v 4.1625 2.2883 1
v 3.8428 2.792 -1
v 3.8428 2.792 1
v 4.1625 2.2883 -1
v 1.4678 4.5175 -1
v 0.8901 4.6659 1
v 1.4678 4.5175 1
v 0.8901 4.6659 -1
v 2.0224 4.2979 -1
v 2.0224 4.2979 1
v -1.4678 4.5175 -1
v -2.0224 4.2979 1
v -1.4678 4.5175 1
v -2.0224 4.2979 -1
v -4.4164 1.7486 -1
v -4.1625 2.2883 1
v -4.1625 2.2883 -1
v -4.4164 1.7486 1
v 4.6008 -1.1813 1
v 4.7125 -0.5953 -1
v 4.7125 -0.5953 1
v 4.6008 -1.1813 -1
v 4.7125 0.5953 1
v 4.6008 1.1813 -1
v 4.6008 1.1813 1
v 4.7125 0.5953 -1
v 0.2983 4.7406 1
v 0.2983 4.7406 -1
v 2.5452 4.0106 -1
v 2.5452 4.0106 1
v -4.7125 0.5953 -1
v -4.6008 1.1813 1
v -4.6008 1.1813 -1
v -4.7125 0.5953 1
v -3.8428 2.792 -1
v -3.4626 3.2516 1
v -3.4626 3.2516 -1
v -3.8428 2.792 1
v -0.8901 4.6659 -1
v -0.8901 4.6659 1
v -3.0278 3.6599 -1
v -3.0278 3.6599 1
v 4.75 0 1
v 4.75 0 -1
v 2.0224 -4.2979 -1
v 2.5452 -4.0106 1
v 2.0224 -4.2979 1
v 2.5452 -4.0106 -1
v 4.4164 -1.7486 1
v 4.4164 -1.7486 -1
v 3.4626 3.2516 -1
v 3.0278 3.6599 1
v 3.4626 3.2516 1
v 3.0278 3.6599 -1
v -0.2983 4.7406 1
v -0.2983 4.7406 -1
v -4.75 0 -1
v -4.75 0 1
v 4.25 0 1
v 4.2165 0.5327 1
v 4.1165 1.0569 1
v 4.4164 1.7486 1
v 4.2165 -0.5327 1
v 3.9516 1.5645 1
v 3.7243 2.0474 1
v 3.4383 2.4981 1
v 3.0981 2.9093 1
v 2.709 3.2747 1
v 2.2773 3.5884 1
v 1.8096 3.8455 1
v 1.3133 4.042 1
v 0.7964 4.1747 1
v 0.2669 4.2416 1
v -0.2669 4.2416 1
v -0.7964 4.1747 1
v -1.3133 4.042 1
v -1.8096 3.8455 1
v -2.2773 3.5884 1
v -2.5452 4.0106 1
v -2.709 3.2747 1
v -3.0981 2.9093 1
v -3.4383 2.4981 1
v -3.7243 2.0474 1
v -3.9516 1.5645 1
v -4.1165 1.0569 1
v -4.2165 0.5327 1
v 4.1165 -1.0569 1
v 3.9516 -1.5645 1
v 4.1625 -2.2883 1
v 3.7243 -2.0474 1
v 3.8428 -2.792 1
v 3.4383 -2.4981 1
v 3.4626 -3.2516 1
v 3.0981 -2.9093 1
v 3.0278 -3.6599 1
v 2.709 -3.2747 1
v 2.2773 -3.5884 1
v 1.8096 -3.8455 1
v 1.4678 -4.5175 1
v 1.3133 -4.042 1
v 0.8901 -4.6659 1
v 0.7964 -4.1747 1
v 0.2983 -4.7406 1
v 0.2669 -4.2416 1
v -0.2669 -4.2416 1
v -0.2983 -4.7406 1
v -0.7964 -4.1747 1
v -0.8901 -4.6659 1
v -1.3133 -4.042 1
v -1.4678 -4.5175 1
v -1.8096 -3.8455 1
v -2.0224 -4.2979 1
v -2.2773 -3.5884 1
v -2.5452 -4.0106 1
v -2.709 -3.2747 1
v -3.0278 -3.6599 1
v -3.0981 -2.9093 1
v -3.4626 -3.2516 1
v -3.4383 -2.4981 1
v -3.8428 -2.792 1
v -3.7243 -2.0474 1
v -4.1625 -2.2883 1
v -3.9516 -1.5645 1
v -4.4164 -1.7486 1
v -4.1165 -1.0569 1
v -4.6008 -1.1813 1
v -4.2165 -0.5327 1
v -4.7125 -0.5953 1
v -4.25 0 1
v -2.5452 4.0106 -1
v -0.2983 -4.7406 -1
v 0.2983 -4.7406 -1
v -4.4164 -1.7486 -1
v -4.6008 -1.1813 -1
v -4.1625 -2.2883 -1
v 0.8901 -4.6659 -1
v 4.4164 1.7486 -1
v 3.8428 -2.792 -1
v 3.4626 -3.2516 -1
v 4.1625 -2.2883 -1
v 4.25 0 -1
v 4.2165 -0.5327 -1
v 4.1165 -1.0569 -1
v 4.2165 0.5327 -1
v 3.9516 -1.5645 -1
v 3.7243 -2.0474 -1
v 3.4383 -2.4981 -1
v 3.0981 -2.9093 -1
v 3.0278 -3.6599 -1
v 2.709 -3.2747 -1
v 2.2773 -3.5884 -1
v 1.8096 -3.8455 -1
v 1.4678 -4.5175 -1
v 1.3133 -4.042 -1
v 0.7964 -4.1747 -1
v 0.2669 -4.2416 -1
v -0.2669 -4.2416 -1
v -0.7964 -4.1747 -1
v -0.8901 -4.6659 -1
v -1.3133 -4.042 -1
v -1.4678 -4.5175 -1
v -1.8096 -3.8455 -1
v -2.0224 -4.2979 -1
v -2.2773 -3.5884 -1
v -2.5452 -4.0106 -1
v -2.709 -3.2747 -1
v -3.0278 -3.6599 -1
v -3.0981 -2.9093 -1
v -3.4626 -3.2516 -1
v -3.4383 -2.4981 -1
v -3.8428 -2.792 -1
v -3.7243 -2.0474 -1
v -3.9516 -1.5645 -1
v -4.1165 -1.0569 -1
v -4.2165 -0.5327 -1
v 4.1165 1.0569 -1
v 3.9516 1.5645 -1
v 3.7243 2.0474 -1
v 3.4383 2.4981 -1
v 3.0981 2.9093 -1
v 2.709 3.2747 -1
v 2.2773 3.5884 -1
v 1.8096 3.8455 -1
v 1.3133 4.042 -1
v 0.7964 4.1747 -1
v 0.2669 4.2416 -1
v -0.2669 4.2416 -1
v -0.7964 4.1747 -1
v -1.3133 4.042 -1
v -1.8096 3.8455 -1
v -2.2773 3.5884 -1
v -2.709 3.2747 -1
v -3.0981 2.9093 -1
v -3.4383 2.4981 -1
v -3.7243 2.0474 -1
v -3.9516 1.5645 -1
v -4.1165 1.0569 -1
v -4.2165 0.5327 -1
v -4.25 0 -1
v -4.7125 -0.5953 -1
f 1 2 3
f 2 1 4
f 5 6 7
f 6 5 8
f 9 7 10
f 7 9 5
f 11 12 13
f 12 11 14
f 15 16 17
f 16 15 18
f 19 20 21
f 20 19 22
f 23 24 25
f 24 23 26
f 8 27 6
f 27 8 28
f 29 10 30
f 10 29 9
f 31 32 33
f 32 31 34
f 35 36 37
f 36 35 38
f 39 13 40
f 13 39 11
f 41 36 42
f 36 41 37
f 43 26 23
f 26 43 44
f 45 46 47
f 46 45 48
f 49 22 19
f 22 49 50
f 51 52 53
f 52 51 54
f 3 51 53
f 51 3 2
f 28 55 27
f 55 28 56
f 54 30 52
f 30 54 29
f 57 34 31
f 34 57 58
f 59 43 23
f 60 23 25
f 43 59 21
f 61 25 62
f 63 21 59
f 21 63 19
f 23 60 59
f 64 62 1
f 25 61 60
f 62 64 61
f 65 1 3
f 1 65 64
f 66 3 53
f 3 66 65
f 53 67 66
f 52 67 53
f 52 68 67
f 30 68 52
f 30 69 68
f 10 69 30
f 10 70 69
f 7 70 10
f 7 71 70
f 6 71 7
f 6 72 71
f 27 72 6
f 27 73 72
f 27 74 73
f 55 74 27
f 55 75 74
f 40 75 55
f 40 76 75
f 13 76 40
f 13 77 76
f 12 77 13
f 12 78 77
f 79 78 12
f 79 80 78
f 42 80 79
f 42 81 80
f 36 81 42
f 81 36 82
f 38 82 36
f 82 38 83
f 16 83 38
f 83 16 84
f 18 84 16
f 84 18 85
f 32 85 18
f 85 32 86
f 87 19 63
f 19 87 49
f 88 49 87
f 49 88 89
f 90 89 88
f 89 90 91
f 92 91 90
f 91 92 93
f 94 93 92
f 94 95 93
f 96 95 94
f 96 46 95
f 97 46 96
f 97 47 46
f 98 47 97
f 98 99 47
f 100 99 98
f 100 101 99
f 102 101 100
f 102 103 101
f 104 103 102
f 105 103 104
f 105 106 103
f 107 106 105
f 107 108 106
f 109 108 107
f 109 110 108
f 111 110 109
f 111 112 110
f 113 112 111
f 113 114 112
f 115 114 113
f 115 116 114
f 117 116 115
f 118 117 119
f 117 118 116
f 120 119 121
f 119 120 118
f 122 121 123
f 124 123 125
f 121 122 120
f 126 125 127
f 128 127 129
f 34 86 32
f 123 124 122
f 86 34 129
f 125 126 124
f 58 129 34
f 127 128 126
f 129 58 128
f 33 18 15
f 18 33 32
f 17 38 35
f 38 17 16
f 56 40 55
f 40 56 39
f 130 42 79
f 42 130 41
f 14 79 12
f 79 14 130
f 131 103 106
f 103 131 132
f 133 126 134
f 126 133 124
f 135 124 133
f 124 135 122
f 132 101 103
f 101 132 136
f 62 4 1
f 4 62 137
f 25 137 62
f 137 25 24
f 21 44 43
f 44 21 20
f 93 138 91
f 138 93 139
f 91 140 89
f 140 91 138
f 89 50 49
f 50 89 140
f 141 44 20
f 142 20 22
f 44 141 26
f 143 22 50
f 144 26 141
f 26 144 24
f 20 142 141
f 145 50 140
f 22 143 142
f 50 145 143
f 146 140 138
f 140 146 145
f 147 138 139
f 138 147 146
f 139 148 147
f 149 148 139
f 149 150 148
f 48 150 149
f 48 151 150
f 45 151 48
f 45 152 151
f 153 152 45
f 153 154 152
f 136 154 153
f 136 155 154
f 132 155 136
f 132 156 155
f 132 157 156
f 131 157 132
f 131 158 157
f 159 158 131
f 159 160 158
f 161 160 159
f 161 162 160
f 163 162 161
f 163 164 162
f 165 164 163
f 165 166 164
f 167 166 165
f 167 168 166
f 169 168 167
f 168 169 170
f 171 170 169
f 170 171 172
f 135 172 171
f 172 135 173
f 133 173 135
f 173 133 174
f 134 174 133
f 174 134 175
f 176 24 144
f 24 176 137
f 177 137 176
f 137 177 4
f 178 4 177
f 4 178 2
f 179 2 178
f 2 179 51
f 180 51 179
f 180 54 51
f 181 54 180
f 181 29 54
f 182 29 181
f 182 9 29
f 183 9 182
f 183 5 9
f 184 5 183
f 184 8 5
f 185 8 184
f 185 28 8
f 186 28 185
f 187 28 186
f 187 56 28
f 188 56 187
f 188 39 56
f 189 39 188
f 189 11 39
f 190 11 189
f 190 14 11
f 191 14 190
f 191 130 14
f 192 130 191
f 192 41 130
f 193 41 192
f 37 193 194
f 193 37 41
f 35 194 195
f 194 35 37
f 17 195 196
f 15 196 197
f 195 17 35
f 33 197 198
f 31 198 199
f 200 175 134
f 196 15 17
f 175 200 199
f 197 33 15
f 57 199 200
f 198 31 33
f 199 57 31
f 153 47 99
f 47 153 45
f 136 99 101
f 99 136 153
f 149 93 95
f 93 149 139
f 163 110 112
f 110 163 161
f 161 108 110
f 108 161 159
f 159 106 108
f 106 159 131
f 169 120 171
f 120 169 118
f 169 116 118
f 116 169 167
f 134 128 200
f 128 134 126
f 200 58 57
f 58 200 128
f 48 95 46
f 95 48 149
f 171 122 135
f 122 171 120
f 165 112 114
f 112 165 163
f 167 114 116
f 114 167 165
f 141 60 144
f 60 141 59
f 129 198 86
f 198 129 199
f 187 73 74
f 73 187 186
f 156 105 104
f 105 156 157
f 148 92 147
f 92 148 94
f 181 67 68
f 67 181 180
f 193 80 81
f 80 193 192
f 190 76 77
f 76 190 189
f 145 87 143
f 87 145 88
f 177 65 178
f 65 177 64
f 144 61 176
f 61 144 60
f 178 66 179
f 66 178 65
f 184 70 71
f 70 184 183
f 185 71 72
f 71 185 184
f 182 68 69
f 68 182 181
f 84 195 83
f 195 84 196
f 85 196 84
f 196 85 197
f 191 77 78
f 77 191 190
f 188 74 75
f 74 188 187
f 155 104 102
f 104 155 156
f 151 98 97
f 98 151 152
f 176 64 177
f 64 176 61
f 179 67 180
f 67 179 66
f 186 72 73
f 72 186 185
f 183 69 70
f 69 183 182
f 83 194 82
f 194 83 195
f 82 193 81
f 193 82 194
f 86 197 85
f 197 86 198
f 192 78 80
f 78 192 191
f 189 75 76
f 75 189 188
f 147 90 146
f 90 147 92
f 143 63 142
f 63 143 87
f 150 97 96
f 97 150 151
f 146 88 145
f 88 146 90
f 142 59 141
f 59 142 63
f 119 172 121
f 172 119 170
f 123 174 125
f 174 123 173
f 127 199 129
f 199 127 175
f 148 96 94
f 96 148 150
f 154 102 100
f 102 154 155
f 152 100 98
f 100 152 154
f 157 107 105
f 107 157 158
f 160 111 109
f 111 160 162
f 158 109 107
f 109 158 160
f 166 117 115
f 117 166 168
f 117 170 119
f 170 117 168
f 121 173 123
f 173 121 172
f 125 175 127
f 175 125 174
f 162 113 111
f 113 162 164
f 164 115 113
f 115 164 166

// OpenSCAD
$fn = 50;


difference() {
	union() {
		translate(v = [0, 0, -1.0000000000]) {
			cylinder(h = 2, r = 4.7500000000);
		}
	}
	union() {
		translate(v = [0, 0, -100.0000000000]) {
			cylinder(h = 200, r = 4.2500000000);
		}
	}
}
